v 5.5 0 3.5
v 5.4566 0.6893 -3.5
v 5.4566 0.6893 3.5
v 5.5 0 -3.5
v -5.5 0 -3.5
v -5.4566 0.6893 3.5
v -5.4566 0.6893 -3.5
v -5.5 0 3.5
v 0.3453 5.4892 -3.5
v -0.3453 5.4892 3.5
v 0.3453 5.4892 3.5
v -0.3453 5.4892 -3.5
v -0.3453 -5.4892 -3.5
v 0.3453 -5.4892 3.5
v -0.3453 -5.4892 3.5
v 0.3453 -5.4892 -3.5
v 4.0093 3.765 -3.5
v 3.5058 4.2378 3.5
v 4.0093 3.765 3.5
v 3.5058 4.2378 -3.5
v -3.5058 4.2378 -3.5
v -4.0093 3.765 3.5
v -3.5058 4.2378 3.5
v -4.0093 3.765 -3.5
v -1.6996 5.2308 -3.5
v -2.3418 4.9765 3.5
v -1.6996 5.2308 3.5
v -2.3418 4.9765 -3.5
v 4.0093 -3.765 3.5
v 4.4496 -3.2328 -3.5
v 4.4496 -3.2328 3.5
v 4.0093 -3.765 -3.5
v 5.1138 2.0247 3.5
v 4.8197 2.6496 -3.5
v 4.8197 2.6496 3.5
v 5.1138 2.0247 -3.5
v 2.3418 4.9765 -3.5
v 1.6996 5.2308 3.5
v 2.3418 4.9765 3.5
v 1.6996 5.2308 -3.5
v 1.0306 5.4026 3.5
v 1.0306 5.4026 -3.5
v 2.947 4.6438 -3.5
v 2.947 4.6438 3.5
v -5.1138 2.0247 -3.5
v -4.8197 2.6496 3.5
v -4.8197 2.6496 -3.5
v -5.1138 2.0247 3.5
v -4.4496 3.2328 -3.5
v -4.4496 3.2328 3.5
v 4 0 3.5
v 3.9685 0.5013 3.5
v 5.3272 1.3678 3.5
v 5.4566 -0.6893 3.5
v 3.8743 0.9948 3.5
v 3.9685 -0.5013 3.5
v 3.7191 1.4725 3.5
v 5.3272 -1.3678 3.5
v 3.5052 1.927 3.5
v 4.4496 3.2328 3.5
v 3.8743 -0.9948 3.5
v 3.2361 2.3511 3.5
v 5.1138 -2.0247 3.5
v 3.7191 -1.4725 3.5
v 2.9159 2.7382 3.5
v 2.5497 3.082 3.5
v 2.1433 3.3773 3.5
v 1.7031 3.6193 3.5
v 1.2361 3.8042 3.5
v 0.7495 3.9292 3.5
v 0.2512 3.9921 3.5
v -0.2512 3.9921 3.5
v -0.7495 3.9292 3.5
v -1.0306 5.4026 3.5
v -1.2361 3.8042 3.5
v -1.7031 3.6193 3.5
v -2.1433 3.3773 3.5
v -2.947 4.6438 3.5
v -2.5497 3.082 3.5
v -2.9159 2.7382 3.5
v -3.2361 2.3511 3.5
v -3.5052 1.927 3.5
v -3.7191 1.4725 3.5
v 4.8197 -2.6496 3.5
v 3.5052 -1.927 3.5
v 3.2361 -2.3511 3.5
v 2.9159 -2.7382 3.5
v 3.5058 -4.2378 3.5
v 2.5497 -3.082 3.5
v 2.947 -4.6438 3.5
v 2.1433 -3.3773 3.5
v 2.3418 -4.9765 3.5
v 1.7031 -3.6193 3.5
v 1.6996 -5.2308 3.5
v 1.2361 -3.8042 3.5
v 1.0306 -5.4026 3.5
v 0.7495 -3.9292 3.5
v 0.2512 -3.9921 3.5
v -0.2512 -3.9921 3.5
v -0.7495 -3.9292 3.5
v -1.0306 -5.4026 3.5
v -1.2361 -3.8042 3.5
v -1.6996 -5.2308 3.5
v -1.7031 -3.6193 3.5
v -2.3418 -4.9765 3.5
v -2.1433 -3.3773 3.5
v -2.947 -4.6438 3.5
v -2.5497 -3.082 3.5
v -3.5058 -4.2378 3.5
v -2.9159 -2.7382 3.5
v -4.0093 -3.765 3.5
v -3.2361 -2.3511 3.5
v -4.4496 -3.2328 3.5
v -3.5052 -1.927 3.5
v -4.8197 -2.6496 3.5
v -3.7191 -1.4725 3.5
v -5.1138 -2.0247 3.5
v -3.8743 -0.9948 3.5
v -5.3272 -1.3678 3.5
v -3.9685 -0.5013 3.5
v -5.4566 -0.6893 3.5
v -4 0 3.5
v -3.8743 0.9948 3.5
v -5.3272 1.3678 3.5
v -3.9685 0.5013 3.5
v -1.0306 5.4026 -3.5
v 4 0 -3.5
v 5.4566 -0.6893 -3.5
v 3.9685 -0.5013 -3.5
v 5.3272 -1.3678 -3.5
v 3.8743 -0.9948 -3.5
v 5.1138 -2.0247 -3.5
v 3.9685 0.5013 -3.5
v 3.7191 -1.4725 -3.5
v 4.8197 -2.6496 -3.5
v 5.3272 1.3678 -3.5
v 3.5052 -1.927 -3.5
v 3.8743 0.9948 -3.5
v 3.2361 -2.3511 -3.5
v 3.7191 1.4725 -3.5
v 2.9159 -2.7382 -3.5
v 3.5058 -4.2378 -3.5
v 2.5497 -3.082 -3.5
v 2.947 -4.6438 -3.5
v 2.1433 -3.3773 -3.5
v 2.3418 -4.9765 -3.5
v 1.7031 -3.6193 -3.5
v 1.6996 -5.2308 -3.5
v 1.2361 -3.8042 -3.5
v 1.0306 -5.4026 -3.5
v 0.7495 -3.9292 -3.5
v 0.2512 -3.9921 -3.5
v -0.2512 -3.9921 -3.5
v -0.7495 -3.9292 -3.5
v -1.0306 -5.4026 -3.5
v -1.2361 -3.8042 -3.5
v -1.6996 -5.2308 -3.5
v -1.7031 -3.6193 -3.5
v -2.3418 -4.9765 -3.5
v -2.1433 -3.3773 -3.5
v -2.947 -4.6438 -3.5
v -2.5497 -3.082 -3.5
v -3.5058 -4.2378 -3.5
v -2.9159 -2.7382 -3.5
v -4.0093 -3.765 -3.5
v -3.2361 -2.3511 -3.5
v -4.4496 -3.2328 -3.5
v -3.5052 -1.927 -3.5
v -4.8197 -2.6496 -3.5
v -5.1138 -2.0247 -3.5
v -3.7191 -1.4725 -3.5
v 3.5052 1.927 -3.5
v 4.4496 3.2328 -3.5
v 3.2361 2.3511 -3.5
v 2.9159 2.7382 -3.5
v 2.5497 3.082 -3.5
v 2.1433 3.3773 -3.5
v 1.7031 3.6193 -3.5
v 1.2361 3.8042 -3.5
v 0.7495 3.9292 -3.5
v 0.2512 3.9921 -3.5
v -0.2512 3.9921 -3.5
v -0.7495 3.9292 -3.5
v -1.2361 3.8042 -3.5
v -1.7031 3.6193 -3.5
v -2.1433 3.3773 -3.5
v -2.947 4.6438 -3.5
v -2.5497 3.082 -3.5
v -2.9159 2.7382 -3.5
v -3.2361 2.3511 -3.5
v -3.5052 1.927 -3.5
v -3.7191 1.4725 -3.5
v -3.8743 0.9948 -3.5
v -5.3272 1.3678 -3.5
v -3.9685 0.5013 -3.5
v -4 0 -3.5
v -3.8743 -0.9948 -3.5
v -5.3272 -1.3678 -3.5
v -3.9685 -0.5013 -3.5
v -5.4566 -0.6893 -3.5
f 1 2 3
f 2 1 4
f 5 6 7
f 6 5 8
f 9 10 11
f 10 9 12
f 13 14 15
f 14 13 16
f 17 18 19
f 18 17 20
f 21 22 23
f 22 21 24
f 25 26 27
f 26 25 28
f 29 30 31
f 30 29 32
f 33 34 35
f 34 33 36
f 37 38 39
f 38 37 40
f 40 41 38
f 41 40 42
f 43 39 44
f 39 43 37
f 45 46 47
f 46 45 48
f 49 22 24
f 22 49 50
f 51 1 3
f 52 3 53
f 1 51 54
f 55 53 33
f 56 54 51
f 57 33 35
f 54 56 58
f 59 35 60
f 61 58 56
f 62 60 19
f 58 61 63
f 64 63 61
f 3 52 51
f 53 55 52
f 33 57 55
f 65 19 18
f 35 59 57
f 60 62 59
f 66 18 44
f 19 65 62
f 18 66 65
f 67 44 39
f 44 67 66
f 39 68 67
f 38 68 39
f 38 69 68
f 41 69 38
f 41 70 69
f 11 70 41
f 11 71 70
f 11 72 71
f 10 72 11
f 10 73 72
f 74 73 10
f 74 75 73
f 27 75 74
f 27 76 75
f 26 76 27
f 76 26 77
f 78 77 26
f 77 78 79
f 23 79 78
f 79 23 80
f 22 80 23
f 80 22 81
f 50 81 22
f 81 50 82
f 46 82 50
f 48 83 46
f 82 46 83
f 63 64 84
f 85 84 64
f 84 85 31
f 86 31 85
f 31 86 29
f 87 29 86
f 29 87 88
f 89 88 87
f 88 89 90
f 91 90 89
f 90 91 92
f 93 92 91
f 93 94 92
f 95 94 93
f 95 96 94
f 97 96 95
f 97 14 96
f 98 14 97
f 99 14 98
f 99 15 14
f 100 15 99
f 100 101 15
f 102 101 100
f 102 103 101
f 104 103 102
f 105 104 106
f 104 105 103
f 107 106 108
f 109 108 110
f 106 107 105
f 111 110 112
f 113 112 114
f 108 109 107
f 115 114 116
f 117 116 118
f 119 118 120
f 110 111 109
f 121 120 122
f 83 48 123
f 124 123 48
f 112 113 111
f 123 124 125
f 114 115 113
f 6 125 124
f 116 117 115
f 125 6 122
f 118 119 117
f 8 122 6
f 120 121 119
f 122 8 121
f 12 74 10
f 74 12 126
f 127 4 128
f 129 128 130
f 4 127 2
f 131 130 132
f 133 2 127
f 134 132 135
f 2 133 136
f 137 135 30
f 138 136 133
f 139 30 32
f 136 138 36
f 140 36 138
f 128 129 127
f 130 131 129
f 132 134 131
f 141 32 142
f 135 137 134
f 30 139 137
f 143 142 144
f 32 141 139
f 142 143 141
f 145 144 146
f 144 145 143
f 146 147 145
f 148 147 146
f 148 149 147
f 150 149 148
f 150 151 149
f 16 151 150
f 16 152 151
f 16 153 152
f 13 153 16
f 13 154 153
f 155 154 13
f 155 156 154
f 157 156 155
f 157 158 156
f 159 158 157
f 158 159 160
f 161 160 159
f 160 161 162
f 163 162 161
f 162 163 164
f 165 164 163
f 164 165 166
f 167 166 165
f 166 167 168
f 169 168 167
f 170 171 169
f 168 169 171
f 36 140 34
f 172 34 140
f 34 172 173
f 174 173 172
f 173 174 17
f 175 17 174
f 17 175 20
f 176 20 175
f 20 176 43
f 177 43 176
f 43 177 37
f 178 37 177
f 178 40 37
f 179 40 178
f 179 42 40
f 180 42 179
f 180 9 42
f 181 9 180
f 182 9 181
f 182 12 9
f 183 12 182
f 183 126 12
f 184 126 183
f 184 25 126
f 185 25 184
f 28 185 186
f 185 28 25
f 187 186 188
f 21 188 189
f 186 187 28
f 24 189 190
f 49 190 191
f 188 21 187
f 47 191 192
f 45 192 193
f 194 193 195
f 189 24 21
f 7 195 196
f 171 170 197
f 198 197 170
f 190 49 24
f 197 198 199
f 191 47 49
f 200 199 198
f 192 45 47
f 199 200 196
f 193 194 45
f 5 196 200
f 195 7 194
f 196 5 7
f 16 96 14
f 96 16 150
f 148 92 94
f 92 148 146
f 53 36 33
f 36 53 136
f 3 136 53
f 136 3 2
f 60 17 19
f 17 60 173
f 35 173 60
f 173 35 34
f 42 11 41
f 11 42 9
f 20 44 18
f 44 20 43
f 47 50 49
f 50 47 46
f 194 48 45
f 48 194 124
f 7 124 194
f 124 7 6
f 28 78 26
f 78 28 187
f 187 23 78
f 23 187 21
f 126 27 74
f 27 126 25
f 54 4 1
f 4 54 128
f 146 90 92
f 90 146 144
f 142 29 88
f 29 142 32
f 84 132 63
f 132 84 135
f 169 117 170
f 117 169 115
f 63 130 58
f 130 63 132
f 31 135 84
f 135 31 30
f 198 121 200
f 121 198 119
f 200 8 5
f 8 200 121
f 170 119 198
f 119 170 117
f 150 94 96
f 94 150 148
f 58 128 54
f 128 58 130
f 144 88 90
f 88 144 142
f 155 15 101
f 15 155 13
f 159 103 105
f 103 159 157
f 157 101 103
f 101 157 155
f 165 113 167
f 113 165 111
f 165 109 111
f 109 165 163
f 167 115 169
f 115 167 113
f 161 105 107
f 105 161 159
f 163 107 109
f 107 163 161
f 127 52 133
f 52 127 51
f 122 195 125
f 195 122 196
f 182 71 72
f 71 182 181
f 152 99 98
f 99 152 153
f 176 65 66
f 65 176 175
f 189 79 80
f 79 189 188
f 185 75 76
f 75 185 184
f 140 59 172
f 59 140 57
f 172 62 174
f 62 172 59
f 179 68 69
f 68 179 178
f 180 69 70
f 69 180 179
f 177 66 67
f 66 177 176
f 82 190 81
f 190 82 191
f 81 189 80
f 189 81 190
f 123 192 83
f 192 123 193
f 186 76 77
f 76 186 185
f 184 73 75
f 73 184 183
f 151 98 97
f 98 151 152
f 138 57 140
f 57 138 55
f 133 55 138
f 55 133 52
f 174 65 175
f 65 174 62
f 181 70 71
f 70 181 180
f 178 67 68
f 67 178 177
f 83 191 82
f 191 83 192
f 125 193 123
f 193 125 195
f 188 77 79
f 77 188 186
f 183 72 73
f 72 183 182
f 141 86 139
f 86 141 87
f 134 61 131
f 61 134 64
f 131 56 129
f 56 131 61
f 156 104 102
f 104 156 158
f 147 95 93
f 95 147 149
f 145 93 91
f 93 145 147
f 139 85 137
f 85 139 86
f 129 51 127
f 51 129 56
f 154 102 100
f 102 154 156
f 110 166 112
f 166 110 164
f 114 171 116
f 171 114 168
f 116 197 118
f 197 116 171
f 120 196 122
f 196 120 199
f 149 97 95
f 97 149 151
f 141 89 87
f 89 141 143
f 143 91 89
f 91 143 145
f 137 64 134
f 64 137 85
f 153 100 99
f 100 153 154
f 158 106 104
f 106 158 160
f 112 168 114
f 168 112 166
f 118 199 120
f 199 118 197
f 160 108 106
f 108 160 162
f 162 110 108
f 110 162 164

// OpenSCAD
$fn = 50;


difference() {
	union() {
		translate(v = [0, 0, -3.5000000000]) {
			cylinder(h = 7, r = 5.5000000000);
		}
	}
	union() {
		translate(v = [0, 0, -100.0000000000]) {
			cylinder(h = 200, r = 4.0000000000);
		}
	}
}
